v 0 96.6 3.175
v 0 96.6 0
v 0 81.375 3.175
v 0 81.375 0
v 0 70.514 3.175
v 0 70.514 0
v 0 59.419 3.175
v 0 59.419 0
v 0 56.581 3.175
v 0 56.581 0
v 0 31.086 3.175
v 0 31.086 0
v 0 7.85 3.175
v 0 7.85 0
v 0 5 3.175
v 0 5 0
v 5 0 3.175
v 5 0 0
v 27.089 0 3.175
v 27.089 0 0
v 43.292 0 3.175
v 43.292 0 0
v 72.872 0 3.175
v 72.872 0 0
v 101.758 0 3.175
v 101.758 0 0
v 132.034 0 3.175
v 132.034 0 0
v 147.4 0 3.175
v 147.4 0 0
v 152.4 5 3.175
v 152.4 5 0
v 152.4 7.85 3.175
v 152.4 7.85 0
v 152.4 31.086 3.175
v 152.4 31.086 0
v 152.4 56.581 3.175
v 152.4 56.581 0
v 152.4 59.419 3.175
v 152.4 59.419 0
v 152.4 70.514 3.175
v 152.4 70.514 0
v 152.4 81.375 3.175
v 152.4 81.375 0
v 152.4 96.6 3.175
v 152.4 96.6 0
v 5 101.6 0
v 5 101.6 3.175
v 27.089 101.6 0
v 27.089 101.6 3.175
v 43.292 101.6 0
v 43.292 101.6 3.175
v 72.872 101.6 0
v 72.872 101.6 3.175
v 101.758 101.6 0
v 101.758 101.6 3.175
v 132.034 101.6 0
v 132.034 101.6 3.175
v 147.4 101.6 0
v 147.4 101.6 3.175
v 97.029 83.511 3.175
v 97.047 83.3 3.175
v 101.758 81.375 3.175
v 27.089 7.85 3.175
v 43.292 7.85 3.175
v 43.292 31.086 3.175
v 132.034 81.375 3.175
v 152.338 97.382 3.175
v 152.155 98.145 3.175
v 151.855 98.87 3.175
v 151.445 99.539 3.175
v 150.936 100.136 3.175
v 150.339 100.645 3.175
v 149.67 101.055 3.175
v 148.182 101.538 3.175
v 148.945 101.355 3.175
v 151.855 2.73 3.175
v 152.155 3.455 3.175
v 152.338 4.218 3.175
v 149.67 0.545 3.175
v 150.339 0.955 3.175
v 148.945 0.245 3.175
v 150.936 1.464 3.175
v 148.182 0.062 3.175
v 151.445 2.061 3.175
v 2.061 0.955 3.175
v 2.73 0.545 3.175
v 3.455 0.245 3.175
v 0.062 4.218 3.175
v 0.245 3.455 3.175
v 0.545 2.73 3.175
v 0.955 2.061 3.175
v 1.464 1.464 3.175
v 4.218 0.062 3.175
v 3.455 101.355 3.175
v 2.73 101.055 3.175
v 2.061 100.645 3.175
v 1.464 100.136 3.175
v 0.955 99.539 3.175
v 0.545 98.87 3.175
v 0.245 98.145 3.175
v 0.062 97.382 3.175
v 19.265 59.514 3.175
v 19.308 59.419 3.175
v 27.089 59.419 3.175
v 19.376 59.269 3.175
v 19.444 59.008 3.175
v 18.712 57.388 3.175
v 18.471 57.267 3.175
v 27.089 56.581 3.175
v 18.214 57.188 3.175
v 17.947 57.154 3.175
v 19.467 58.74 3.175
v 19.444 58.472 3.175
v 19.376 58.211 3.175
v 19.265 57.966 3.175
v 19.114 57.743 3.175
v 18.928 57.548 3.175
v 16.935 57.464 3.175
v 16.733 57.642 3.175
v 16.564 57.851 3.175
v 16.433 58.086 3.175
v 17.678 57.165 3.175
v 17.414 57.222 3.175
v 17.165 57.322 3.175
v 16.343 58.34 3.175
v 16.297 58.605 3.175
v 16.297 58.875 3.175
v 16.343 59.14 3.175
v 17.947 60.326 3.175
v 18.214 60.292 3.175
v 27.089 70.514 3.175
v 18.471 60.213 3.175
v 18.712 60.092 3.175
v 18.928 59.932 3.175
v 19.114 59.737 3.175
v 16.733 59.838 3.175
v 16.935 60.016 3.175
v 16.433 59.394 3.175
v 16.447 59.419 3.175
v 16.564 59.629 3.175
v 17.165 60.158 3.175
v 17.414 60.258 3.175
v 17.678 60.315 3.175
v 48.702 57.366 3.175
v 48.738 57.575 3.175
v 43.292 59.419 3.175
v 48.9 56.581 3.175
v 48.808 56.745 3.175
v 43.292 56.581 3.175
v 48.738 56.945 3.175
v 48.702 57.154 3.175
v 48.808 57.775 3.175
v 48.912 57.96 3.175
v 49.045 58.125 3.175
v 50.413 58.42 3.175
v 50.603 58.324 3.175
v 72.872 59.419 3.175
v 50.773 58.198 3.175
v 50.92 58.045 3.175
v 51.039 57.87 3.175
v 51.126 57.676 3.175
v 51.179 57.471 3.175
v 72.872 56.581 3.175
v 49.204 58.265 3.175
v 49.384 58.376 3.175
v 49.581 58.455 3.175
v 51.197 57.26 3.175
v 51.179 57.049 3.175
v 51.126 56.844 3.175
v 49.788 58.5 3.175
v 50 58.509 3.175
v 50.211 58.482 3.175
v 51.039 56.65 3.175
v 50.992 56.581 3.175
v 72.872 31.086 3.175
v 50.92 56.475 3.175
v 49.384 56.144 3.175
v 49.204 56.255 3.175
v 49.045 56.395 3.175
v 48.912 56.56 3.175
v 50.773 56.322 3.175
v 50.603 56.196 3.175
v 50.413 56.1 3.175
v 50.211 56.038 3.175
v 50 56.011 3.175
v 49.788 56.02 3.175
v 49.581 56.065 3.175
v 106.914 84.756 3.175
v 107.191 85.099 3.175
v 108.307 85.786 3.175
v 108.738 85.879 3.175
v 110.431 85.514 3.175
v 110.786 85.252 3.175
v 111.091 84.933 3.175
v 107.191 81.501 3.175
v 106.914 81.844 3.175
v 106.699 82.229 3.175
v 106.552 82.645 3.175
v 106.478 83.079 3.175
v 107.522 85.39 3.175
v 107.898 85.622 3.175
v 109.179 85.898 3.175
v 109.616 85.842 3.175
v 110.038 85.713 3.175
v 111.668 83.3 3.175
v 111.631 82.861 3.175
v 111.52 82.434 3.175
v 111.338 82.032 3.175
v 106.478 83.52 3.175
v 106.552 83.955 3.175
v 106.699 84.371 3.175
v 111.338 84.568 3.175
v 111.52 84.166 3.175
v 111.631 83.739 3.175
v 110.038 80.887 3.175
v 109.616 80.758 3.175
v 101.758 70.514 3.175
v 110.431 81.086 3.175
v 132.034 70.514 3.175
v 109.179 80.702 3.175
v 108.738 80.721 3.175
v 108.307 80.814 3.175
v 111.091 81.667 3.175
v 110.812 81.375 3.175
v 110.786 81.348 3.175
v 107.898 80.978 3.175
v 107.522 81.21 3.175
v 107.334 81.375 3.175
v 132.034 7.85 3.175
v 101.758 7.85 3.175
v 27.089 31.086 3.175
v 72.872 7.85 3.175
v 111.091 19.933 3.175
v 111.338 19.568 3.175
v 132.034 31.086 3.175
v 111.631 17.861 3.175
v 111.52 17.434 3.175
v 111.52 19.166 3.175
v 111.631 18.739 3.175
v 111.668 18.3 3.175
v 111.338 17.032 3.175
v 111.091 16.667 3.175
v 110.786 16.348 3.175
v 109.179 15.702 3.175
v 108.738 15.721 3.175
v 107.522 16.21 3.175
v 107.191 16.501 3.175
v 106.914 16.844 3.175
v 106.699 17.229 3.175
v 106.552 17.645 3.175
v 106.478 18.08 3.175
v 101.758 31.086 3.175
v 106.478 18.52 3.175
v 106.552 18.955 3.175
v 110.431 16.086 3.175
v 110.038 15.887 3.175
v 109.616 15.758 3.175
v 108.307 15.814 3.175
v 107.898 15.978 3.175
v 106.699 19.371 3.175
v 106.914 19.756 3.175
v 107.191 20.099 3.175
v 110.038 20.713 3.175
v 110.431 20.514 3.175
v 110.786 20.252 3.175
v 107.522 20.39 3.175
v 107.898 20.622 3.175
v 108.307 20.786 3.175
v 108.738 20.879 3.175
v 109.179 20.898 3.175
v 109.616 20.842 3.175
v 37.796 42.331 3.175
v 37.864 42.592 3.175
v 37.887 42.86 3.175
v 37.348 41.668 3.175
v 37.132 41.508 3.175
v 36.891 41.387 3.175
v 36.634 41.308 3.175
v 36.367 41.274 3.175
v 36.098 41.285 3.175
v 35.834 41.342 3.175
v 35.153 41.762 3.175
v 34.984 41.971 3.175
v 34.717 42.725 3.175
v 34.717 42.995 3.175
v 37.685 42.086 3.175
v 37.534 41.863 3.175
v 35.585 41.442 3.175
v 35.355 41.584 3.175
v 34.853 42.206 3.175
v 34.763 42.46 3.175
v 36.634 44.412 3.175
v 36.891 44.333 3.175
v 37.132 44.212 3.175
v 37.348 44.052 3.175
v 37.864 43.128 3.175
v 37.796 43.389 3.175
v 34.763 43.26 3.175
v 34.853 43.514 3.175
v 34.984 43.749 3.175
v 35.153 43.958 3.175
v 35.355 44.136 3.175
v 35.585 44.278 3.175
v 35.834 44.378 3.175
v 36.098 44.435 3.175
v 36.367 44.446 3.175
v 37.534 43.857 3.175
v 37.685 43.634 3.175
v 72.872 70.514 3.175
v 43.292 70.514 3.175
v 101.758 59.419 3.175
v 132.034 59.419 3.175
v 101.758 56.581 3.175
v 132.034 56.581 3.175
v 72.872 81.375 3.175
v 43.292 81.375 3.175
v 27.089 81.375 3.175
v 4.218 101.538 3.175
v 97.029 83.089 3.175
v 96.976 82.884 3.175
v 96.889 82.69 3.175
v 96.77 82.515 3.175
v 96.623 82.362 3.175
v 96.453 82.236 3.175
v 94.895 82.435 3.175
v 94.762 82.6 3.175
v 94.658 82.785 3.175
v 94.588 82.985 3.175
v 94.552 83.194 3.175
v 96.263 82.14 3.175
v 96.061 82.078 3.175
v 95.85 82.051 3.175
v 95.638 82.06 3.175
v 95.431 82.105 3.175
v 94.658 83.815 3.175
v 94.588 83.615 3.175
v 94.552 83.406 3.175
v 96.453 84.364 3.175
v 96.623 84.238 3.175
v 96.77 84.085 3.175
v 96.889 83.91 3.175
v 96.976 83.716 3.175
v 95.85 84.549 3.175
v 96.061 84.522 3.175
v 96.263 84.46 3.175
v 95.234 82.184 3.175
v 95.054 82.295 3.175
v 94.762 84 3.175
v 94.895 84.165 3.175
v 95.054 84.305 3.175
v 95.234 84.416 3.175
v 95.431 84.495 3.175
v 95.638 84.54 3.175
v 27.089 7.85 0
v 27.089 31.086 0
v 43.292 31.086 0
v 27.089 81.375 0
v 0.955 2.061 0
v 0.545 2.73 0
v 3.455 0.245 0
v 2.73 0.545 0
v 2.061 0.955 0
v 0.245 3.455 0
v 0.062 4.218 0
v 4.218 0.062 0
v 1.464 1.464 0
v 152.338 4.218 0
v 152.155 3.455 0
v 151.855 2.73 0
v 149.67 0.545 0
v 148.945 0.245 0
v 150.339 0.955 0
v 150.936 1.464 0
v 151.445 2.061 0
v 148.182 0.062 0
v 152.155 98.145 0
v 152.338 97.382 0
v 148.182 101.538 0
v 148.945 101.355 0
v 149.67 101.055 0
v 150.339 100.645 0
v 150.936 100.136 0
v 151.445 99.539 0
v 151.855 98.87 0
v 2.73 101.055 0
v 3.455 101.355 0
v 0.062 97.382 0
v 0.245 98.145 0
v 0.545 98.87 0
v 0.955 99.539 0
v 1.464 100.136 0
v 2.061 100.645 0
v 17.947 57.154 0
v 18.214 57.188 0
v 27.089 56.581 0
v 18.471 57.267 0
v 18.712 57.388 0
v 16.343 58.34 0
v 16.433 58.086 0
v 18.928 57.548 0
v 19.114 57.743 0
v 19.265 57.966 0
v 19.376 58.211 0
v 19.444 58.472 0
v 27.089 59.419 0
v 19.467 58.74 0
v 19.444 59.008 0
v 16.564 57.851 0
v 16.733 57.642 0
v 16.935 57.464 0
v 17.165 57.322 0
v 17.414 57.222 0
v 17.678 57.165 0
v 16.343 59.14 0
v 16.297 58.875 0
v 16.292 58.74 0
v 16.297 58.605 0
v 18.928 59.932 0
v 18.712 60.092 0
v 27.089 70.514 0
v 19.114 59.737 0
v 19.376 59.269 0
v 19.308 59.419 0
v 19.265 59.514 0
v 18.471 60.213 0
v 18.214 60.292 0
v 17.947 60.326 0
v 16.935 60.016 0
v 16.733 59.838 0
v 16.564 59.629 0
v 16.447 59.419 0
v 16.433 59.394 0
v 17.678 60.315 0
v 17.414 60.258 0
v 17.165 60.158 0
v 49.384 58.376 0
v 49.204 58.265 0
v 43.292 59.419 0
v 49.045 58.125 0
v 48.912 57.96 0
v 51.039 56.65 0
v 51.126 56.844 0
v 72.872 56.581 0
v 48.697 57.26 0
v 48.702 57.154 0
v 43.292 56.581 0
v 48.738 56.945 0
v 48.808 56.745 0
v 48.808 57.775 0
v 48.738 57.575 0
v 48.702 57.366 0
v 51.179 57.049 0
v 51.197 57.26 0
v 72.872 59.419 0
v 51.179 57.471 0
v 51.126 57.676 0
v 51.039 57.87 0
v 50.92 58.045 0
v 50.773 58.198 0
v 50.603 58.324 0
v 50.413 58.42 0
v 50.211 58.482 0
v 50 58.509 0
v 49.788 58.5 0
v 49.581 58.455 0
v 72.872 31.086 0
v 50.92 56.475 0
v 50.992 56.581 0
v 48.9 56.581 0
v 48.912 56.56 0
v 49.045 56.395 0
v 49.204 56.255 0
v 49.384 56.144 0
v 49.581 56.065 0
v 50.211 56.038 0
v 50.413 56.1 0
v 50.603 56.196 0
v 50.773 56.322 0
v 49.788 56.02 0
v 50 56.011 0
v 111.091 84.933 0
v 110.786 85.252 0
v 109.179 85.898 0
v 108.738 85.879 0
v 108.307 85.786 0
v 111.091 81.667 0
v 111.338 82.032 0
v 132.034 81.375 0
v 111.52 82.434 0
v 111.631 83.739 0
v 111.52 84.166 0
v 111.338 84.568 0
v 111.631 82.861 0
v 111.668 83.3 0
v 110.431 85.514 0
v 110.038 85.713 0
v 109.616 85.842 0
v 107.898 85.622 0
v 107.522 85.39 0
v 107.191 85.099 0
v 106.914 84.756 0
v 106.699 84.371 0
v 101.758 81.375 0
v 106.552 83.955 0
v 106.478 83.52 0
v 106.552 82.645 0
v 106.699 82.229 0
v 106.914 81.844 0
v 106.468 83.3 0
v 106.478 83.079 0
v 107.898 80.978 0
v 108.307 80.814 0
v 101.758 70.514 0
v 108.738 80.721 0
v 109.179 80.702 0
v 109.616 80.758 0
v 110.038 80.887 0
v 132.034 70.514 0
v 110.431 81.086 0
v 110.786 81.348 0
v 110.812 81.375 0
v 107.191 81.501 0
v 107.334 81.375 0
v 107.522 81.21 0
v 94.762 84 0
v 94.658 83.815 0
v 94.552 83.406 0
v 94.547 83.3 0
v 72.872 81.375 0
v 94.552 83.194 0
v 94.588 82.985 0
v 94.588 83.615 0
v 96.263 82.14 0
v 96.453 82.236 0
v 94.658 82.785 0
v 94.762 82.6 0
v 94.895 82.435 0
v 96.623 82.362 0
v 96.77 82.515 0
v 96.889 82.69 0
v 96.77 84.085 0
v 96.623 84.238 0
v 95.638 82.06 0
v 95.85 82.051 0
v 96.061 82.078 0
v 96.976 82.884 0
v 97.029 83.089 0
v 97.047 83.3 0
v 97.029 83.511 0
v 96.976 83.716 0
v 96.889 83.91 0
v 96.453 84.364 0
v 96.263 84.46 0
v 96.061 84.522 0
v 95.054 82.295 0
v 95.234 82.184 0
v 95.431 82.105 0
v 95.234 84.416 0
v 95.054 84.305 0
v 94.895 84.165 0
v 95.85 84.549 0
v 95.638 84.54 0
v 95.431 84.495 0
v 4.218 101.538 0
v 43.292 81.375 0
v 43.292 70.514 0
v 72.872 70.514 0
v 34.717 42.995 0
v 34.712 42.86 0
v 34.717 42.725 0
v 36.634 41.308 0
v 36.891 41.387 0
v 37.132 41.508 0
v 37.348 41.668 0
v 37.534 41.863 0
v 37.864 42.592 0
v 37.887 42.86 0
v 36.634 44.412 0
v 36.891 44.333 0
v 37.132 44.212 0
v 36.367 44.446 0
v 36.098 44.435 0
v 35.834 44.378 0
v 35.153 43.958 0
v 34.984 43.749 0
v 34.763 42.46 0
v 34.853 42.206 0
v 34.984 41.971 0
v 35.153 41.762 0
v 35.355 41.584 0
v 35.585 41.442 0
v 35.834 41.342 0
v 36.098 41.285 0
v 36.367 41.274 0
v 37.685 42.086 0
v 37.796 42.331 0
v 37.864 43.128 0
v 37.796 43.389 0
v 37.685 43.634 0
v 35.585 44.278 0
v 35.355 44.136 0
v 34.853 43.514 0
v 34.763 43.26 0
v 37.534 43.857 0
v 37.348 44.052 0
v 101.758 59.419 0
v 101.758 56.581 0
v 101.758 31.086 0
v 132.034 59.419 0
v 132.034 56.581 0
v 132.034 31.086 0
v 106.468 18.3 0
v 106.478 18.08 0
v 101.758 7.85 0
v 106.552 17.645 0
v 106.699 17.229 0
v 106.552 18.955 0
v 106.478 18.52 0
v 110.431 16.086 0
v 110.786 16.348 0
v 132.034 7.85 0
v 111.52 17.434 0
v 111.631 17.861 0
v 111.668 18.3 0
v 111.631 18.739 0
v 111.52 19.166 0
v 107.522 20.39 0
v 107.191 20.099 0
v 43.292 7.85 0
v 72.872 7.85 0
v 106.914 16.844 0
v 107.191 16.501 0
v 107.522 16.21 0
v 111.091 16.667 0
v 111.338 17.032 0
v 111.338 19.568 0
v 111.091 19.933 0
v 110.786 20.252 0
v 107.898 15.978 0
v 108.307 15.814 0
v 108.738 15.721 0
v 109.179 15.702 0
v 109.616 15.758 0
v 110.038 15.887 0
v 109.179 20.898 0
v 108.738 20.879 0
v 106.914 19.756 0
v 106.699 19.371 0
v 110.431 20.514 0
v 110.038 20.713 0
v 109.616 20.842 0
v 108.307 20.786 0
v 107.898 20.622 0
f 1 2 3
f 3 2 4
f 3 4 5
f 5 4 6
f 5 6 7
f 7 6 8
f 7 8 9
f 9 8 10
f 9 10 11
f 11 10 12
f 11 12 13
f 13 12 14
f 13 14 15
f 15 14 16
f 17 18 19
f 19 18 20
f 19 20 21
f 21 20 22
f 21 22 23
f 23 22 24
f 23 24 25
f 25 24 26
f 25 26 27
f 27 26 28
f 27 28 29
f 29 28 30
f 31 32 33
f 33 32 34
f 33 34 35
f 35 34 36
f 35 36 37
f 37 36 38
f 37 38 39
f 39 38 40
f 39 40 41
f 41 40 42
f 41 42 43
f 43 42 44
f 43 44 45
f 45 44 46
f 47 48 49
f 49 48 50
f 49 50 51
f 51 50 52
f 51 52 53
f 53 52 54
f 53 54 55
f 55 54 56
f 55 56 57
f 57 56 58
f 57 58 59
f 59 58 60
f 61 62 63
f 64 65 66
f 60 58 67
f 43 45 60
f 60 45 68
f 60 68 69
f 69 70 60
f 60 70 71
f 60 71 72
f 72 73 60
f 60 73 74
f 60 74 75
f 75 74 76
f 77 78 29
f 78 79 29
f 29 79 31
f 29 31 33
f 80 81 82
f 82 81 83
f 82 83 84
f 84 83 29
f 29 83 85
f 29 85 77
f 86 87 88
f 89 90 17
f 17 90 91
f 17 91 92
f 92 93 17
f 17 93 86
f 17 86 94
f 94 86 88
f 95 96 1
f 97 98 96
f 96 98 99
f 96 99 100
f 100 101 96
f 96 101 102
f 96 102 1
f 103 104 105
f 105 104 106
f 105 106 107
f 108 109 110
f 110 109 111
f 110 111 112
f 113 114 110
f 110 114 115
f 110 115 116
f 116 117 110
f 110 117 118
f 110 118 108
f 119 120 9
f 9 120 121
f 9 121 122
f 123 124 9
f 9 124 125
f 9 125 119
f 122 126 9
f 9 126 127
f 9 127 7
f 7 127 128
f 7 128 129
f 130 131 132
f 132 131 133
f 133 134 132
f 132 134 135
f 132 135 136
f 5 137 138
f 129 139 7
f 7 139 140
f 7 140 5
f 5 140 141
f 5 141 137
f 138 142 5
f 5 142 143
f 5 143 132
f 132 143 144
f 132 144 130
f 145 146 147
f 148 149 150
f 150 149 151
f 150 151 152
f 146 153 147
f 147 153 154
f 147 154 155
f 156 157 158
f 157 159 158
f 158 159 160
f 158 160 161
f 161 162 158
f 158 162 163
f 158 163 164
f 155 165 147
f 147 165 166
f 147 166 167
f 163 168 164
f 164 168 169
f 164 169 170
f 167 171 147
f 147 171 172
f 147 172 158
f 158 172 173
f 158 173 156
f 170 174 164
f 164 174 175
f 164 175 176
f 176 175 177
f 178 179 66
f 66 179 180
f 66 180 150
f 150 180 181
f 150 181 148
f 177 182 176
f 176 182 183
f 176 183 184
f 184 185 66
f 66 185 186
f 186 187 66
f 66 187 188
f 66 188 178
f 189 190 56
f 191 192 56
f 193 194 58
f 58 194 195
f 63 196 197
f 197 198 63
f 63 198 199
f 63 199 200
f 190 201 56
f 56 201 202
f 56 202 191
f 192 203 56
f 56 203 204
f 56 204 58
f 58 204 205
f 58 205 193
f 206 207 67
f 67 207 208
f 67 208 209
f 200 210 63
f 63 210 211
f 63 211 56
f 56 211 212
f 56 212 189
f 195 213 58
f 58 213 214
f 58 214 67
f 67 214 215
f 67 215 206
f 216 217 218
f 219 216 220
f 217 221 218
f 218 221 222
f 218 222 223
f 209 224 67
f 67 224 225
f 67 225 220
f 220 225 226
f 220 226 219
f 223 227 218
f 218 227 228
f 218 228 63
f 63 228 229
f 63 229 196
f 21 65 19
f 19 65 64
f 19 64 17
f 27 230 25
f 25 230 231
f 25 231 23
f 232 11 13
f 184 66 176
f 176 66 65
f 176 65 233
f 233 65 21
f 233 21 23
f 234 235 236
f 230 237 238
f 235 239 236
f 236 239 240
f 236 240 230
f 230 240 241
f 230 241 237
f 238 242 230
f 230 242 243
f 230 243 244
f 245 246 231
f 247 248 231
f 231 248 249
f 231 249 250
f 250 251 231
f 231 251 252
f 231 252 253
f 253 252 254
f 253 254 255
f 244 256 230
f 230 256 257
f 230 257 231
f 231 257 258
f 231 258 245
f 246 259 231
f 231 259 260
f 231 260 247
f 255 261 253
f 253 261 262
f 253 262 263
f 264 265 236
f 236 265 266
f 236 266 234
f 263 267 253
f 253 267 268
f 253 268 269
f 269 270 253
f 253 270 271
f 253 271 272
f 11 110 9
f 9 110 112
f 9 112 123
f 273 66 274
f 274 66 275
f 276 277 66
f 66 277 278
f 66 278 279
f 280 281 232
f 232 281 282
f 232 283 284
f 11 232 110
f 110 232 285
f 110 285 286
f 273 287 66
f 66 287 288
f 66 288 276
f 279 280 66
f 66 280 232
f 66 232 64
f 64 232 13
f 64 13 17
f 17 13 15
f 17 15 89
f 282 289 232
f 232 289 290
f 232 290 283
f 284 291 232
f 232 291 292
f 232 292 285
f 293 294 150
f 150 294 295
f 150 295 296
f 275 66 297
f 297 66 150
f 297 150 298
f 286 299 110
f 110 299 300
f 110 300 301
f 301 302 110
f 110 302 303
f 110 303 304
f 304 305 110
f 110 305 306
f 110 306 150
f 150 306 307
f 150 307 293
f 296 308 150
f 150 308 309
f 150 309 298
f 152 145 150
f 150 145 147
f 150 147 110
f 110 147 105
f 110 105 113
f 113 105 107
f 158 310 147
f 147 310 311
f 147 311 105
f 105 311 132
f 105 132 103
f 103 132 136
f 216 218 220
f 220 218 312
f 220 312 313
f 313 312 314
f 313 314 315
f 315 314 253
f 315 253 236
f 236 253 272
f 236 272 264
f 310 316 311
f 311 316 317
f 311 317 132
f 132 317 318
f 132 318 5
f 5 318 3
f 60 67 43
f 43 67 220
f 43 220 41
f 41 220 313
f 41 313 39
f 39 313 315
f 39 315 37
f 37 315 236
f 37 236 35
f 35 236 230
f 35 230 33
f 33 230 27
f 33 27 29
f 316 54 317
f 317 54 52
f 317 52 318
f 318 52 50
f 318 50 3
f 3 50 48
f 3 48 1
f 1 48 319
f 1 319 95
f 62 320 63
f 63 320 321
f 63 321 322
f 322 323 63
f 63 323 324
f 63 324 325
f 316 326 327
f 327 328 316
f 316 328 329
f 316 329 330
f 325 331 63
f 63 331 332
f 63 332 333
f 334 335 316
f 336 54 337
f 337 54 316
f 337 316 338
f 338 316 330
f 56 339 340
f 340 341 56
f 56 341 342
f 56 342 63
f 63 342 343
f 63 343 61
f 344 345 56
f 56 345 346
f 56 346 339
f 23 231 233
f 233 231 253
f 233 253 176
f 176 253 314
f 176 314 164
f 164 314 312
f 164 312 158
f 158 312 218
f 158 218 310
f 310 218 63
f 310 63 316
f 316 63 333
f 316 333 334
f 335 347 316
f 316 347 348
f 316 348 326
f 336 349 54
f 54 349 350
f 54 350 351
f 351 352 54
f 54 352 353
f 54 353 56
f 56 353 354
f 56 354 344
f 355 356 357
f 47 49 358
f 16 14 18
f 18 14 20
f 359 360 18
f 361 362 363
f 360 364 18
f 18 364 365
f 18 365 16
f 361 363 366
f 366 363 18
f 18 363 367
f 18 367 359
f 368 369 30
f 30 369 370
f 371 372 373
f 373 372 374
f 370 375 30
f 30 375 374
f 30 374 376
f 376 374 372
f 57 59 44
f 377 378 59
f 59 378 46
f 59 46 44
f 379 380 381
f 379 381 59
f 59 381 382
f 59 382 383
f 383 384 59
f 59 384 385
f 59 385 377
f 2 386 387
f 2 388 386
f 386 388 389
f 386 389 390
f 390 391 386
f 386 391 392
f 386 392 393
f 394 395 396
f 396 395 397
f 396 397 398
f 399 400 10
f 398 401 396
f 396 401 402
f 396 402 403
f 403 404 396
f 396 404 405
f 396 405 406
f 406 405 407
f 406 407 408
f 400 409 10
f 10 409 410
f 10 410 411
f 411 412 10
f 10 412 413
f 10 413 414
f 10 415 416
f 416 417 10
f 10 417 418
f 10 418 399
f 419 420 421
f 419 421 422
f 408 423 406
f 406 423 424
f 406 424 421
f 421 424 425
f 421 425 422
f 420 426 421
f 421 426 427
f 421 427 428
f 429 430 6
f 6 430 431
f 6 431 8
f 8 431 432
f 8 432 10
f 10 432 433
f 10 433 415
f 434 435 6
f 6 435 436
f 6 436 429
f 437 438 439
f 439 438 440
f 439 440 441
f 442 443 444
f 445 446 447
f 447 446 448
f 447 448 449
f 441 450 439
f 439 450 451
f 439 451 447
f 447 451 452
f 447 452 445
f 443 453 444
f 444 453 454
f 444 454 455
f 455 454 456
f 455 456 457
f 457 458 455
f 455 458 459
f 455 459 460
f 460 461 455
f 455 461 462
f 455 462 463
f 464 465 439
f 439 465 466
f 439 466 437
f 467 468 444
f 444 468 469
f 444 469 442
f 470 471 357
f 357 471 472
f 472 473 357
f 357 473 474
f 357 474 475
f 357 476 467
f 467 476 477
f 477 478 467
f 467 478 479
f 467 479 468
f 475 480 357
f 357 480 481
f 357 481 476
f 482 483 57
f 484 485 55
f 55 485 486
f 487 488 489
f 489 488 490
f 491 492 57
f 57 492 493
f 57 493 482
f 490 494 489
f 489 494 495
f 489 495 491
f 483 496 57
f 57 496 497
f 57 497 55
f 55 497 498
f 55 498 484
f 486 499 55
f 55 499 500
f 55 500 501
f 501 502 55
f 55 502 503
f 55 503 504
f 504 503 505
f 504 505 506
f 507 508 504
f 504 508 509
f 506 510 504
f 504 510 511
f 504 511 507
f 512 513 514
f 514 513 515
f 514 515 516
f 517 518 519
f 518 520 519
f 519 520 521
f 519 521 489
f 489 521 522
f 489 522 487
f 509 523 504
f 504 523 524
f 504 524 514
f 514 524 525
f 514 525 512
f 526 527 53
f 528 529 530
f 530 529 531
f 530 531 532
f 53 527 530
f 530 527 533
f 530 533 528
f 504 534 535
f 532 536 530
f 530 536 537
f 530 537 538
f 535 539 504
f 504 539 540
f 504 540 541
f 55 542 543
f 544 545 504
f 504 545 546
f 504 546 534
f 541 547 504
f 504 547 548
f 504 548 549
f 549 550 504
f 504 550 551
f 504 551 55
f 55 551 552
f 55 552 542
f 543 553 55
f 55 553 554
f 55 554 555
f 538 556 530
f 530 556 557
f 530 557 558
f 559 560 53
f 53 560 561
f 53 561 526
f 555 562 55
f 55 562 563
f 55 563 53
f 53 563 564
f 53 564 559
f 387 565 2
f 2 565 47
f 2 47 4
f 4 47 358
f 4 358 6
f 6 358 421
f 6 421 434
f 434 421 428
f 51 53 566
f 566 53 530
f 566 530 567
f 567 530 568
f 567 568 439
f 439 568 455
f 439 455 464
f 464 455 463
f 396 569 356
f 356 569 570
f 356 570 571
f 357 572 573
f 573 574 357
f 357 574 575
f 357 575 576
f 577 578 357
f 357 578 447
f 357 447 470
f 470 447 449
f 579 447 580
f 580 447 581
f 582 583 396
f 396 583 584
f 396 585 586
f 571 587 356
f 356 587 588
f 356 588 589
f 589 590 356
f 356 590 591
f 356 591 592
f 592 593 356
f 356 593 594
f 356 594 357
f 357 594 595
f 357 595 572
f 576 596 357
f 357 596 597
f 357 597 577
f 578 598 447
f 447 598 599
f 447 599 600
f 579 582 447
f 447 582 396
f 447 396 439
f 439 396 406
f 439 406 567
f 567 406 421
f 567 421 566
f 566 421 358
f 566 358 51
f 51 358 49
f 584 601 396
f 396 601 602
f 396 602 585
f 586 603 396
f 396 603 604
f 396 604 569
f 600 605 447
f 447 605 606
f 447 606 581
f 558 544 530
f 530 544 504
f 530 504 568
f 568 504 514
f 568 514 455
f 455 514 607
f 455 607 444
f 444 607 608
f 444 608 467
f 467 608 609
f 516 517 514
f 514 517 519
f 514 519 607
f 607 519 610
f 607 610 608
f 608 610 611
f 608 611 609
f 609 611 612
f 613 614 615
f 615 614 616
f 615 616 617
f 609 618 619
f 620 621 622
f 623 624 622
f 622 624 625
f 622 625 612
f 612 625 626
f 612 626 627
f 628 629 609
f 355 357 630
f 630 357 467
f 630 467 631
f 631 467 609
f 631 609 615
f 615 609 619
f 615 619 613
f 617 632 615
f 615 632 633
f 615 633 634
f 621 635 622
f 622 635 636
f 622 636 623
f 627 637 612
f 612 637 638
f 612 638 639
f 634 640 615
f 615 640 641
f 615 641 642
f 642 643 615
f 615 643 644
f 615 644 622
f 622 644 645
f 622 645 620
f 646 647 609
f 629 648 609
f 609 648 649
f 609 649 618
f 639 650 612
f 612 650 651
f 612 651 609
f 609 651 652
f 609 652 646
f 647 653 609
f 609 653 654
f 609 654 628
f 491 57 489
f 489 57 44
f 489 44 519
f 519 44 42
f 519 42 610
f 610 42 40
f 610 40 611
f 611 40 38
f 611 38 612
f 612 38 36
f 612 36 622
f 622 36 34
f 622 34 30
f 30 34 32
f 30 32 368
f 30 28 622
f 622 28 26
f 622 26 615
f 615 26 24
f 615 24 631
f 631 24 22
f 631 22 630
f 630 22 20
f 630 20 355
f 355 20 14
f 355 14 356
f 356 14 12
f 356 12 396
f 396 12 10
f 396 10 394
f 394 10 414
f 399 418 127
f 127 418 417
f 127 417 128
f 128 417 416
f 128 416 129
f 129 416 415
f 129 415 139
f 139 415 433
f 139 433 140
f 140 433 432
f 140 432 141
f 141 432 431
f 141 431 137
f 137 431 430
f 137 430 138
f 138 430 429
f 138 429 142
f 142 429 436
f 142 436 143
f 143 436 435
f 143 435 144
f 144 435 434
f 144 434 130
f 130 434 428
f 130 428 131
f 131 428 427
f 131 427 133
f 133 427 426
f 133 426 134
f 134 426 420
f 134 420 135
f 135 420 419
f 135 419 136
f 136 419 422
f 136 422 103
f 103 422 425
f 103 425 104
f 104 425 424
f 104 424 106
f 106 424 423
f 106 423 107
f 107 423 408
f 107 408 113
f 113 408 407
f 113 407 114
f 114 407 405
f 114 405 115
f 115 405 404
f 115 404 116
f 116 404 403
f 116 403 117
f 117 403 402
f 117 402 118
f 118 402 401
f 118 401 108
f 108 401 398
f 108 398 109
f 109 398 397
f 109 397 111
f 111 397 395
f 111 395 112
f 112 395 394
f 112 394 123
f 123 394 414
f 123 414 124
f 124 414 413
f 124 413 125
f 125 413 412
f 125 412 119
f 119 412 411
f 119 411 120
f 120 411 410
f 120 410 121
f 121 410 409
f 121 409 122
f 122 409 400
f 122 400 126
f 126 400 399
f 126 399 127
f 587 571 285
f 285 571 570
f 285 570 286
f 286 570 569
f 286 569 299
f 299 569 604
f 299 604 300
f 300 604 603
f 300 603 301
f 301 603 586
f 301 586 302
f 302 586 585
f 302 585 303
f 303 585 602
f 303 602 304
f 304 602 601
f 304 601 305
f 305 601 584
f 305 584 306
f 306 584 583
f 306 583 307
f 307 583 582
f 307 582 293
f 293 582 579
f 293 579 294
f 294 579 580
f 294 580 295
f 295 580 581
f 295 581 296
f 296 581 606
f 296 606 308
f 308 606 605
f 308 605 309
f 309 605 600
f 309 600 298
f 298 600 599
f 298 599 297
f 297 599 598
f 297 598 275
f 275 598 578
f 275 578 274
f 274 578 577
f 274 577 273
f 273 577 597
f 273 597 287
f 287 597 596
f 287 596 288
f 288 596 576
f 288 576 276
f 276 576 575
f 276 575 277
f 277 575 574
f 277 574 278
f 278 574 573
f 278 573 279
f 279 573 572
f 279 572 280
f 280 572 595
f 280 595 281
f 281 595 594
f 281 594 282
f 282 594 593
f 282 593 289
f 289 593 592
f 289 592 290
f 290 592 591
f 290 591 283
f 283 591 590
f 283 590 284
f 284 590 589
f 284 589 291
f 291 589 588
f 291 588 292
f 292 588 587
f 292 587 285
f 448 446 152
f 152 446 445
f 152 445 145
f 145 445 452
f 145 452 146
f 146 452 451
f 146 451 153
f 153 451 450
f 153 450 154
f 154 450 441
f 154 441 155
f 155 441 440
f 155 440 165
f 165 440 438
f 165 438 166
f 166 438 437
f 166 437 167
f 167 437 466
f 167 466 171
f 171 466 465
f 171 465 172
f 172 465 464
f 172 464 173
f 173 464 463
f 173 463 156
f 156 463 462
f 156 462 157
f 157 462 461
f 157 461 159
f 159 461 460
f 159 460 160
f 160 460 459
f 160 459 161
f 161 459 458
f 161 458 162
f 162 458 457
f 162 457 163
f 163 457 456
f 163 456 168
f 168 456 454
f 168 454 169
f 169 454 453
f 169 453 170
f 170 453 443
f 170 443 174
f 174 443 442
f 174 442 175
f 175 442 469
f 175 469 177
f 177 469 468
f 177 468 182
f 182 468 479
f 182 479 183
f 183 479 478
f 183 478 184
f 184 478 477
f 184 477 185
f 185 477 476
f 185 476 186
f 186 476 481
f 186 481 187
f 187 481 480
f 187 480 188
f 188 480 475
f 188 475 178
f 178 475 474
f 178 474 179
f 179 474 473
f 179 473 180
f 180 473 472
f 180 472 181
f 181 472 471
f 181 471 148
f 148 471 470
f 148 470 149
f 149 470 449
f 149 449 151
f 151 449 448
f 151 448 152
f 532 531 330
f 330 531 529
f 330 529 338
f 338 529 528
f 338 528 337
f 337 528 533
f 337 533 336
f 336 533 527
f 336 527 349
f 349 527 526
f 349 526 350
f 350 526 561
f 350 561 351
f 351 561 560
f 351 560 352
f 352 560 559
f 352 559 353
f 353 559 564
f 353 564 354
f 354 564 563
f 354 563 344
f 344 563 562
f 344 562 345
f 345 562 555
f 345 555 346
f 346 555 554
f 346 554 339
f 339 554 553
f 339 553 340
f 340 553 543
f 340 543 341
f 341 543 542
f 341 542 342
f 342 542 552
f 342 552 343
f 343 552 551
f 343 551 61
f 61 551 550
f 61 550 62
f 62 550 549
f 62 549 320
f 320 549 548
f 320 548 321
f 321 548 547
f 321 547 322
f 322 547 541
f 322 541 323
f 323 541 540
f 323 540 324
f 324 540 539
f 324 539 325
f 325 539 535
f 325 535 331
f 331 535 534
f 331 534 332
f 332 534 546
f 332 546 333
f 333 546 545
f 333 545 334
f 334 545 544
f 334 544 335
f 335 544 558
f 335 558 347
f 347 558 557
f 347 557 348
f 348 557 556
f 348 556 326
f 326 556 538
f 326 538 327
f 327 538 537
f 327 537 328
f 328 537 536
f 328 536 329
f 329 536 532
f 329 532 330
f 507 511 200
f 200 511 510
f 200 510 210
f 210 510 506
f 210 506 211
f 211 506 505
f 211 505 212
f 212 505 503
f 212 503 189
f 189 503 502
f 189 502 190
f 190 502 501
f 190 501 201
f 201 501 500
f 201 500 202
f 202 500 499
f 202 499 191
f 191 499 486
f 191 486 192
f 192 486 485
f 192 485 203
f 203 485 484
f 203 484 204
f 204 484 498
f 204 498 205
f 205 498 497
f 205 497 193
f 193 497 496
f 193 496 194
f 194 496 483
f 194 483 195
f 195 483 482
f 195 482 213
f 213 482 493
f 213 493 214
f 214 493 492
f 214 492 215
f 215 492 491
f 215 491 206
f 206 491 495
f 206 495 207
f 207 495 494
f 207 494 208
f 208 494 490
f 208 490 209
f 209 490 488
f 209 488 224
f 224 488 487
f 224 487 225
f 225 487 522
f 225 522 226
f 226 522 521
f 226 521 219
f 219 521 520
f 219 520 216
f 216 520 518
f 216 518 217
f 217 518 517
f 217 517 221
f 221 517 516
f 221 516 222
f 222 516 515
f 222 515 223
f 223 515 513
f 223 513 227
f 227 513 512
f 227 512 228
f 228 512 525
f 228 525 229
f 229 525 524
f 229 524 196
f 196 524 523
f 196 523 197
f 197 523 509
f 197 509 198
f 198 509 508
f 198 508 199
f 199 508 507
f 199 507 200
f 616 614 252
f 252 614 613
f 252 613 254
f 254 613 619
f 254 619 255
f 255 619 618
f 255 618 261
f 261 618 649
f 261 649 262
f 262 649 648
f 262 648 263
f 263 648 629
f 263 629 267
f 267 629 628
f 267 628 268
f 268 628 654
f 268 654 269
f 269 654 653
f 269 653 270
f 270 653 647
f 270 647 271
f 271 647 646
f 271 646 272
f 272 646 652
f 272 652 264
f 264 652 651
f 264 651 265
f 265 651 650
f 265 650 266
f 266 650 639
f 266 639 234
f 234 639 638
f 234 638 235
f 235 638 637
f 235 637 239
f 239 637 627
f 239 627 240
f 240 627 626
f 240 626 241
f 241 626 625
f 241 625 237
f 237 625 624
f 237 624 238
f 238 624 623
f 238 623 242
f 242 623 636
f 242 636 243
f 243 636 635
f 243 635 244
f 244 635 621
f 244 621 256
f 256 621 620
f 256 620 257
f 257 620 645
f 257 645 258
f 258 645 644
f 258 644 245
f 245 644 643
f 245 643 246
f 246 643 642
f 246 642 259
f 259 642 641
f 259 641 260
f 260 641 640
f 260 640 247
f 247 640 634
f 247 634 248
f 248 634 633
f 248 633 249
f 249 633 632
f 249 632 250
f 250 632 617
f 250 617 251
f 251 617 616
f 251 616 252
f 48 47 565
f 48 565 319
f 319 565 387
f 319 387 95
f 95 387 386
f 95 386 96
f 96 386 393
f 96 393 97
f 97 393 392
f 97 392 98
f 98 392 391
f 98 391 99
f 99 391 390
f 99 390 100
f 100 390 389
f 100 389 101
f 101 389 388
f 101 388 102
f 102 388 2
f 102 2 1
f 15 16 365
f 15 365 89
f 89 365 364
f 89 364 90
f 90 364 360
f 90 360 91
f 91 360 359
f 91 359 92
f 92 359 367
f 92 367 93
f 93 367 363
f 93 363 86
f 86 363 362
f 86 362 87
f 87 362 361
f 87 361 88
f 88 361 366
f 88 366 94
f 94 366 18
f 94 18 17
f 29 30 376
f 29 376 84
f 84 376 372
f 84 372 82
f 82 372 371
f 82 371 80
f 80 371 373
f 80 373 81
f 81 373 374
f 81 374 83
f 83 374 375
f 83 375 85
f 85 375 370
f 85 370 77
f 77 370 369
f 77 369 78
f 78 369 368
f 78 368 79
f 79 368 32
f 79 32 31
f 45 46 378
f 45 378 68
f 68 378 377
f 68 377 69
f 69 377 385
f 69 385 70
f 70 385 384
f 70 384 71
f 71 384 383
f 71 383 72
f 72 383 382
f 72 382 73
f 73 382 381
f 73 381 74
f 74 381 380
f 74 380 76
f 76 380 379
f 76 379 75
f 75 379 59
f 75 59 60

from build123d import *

# Parameters (mm, degrees)
SKETCH1_W           = 152.4
SKETCH1_H           = 101.6
BOSS_EXTRUDE1_DEPTH = 3.175
CUT_EXTRUDE1_REACH  = 5.175
SKETCH2_R           = 2.6
SKETCH2_R_2         = 1.25
SKETCH2_R_3         = 1.5875
FILLET1_R           = 5


with BuildPart() as part:
    # Sketch1 → Boss-Extrude1 (new body)
    with BuildSketch(Plane.XY):
        with Locations((76.2, 50.8)):
            Rectangle(SKETCH1_W, SKETCH1_H)
    extrude(amount=BOSS_EXTRUDE1_DEPTH)

    # Sketch2 → Cut-Extrude1 (cut, up to next)
    with BuildSketch(Plane.XY.offset(3.175), mode=Mode.PRIVATE) as cut_extrude1_sk1:
        with Locations((109.06828742, 18.3)):
            Circle(SKETCH2_R)
    cut_extrude1_tool1 = extrude(cut_extrude1_sk1.sketch, amount=-CUT_EXTRUDE1_REACH, mode=Mode.PRIVATE) & part.part
    add(cut_extrude1_tool1.solids().sort_by_distance((109.068287, 18.3, 3.175))[0], mode=Mode.SUBTRACT)
    # Sketch2 → Cut-Extrude1 (cut, up to next)
    with BuildSketch(Plane.XY.offset(3.175), mode=Mode.PRIVATE) as cut_extrude1_sk2:
        with Locations((109.06828742, 83.3)):
            Circle(SKETCH2_R)
    cut_extrude1_tool2 = extrude(cut_extrude1_sk2.sketch, amount=-CUT_EXTRUDE1_REACH, mode=Mode.PRIVATE) & part.part
    add(cut_extrude1_tool2.solids().sort_by_distance((109.068287, 83.3, 3.175))[0], mode=Mode.SUBTRACT)
    # Sketch2 → Cut-Extrude1 (cut, up to next)
    with BuildSketch(Plane.XY.offset(3.175), mode=Mode.PRIVATE) as cut_extrude1_sk3:
        with Locations((95.79724118, 83.3)):
            Circle(SKETCH2_R_2)
    cut_extrude1_tool3 = extrude(cut_extrude1_sk3.sketch, amount=-CUT_EXTRUDE1_REACH, mode=Mode.PRIVATE) & part.part
    add(cut_extrude1_tool3.solids().sort_by_distance((95.797241, 83.3, 3.175))[0], mode=Mode.SUBTRACT)
    # Sketch2 → Cut-Extrude1 (cut, up to next)
    with BuildSketch(Plane.XY.offset(3.175), mode=Mode.PRIVATE) as cut_extrude1_sk4:
        with Locations((49.94724118, 57.26)):
            Circle(SKETCH2_R_2)
    cut_extrude1_tool4 = extrude(cut_extrude1_sk4.sketch, amount=-CUT_EXTRUDE1_REACH, mode=Mode.PRIVATE) & part.part
    add(cut_extrude1_tool4.solids().sort_by_distance((49.947241, 57.26, 3.175))[0], mode=Mode.SUBTRACT)
    # Sketch2 → Cut-Extrude1 (cut, up to next)
    with BuildSketch(Plane.XY.offset(3.175), mode=Mode.PRIVATE) as cut_extrude1_sk5:
        with Locations((17.879257387, 58.74)):
            Circle(SKETCH2_R_3)
    cut_extrude1_tool5 = extrude(cut_extrude1_sk5.sketch, amount=-CUT_EXTRUDE1_REACH, mode=Mode.PRIVATE) & part.part
    add(cut_extrude1_tool5.solids().sort_by_distance((17.879257, 58.74, 3.175))[0], mode=Mode.SUBTRACT)
    # Sketch2 → Cut-Extrude1 (cut, up to next)
    with BuildSketch(Plane.XY.offset(3.175), mode=Mode.PRIVATE) as cut_extrude1_sk6:
        with Locations((36.299257387, 42.86)):
            Circle(SKETCH2_R_3)
    cut_extrude1_tool6 = extrude(cut_extrude1_sk6.sketch, amount=-CUT_EXTRUDE1_REACH, mode=Mode.PRIVATE) & part.part
    add(cut_extrude1_tool6.solids().sort_by_distance((36.299257, 42.86, 3.175))[0], mode=Mode.SUBTRACT)

    # Fillet1
    fillet1_edges = [part.edges().sort_by_distance(p)[0] for p in [
        (0, 101.6, 1.5875),
        (152.4, 101.6, 1.5875),
        (152.4, 0, 1.5875),
        (0, 0, 1.5875),
    ]]
    fillet(fillet1_edges, radius=FILLET1_R)


solid = part.part
